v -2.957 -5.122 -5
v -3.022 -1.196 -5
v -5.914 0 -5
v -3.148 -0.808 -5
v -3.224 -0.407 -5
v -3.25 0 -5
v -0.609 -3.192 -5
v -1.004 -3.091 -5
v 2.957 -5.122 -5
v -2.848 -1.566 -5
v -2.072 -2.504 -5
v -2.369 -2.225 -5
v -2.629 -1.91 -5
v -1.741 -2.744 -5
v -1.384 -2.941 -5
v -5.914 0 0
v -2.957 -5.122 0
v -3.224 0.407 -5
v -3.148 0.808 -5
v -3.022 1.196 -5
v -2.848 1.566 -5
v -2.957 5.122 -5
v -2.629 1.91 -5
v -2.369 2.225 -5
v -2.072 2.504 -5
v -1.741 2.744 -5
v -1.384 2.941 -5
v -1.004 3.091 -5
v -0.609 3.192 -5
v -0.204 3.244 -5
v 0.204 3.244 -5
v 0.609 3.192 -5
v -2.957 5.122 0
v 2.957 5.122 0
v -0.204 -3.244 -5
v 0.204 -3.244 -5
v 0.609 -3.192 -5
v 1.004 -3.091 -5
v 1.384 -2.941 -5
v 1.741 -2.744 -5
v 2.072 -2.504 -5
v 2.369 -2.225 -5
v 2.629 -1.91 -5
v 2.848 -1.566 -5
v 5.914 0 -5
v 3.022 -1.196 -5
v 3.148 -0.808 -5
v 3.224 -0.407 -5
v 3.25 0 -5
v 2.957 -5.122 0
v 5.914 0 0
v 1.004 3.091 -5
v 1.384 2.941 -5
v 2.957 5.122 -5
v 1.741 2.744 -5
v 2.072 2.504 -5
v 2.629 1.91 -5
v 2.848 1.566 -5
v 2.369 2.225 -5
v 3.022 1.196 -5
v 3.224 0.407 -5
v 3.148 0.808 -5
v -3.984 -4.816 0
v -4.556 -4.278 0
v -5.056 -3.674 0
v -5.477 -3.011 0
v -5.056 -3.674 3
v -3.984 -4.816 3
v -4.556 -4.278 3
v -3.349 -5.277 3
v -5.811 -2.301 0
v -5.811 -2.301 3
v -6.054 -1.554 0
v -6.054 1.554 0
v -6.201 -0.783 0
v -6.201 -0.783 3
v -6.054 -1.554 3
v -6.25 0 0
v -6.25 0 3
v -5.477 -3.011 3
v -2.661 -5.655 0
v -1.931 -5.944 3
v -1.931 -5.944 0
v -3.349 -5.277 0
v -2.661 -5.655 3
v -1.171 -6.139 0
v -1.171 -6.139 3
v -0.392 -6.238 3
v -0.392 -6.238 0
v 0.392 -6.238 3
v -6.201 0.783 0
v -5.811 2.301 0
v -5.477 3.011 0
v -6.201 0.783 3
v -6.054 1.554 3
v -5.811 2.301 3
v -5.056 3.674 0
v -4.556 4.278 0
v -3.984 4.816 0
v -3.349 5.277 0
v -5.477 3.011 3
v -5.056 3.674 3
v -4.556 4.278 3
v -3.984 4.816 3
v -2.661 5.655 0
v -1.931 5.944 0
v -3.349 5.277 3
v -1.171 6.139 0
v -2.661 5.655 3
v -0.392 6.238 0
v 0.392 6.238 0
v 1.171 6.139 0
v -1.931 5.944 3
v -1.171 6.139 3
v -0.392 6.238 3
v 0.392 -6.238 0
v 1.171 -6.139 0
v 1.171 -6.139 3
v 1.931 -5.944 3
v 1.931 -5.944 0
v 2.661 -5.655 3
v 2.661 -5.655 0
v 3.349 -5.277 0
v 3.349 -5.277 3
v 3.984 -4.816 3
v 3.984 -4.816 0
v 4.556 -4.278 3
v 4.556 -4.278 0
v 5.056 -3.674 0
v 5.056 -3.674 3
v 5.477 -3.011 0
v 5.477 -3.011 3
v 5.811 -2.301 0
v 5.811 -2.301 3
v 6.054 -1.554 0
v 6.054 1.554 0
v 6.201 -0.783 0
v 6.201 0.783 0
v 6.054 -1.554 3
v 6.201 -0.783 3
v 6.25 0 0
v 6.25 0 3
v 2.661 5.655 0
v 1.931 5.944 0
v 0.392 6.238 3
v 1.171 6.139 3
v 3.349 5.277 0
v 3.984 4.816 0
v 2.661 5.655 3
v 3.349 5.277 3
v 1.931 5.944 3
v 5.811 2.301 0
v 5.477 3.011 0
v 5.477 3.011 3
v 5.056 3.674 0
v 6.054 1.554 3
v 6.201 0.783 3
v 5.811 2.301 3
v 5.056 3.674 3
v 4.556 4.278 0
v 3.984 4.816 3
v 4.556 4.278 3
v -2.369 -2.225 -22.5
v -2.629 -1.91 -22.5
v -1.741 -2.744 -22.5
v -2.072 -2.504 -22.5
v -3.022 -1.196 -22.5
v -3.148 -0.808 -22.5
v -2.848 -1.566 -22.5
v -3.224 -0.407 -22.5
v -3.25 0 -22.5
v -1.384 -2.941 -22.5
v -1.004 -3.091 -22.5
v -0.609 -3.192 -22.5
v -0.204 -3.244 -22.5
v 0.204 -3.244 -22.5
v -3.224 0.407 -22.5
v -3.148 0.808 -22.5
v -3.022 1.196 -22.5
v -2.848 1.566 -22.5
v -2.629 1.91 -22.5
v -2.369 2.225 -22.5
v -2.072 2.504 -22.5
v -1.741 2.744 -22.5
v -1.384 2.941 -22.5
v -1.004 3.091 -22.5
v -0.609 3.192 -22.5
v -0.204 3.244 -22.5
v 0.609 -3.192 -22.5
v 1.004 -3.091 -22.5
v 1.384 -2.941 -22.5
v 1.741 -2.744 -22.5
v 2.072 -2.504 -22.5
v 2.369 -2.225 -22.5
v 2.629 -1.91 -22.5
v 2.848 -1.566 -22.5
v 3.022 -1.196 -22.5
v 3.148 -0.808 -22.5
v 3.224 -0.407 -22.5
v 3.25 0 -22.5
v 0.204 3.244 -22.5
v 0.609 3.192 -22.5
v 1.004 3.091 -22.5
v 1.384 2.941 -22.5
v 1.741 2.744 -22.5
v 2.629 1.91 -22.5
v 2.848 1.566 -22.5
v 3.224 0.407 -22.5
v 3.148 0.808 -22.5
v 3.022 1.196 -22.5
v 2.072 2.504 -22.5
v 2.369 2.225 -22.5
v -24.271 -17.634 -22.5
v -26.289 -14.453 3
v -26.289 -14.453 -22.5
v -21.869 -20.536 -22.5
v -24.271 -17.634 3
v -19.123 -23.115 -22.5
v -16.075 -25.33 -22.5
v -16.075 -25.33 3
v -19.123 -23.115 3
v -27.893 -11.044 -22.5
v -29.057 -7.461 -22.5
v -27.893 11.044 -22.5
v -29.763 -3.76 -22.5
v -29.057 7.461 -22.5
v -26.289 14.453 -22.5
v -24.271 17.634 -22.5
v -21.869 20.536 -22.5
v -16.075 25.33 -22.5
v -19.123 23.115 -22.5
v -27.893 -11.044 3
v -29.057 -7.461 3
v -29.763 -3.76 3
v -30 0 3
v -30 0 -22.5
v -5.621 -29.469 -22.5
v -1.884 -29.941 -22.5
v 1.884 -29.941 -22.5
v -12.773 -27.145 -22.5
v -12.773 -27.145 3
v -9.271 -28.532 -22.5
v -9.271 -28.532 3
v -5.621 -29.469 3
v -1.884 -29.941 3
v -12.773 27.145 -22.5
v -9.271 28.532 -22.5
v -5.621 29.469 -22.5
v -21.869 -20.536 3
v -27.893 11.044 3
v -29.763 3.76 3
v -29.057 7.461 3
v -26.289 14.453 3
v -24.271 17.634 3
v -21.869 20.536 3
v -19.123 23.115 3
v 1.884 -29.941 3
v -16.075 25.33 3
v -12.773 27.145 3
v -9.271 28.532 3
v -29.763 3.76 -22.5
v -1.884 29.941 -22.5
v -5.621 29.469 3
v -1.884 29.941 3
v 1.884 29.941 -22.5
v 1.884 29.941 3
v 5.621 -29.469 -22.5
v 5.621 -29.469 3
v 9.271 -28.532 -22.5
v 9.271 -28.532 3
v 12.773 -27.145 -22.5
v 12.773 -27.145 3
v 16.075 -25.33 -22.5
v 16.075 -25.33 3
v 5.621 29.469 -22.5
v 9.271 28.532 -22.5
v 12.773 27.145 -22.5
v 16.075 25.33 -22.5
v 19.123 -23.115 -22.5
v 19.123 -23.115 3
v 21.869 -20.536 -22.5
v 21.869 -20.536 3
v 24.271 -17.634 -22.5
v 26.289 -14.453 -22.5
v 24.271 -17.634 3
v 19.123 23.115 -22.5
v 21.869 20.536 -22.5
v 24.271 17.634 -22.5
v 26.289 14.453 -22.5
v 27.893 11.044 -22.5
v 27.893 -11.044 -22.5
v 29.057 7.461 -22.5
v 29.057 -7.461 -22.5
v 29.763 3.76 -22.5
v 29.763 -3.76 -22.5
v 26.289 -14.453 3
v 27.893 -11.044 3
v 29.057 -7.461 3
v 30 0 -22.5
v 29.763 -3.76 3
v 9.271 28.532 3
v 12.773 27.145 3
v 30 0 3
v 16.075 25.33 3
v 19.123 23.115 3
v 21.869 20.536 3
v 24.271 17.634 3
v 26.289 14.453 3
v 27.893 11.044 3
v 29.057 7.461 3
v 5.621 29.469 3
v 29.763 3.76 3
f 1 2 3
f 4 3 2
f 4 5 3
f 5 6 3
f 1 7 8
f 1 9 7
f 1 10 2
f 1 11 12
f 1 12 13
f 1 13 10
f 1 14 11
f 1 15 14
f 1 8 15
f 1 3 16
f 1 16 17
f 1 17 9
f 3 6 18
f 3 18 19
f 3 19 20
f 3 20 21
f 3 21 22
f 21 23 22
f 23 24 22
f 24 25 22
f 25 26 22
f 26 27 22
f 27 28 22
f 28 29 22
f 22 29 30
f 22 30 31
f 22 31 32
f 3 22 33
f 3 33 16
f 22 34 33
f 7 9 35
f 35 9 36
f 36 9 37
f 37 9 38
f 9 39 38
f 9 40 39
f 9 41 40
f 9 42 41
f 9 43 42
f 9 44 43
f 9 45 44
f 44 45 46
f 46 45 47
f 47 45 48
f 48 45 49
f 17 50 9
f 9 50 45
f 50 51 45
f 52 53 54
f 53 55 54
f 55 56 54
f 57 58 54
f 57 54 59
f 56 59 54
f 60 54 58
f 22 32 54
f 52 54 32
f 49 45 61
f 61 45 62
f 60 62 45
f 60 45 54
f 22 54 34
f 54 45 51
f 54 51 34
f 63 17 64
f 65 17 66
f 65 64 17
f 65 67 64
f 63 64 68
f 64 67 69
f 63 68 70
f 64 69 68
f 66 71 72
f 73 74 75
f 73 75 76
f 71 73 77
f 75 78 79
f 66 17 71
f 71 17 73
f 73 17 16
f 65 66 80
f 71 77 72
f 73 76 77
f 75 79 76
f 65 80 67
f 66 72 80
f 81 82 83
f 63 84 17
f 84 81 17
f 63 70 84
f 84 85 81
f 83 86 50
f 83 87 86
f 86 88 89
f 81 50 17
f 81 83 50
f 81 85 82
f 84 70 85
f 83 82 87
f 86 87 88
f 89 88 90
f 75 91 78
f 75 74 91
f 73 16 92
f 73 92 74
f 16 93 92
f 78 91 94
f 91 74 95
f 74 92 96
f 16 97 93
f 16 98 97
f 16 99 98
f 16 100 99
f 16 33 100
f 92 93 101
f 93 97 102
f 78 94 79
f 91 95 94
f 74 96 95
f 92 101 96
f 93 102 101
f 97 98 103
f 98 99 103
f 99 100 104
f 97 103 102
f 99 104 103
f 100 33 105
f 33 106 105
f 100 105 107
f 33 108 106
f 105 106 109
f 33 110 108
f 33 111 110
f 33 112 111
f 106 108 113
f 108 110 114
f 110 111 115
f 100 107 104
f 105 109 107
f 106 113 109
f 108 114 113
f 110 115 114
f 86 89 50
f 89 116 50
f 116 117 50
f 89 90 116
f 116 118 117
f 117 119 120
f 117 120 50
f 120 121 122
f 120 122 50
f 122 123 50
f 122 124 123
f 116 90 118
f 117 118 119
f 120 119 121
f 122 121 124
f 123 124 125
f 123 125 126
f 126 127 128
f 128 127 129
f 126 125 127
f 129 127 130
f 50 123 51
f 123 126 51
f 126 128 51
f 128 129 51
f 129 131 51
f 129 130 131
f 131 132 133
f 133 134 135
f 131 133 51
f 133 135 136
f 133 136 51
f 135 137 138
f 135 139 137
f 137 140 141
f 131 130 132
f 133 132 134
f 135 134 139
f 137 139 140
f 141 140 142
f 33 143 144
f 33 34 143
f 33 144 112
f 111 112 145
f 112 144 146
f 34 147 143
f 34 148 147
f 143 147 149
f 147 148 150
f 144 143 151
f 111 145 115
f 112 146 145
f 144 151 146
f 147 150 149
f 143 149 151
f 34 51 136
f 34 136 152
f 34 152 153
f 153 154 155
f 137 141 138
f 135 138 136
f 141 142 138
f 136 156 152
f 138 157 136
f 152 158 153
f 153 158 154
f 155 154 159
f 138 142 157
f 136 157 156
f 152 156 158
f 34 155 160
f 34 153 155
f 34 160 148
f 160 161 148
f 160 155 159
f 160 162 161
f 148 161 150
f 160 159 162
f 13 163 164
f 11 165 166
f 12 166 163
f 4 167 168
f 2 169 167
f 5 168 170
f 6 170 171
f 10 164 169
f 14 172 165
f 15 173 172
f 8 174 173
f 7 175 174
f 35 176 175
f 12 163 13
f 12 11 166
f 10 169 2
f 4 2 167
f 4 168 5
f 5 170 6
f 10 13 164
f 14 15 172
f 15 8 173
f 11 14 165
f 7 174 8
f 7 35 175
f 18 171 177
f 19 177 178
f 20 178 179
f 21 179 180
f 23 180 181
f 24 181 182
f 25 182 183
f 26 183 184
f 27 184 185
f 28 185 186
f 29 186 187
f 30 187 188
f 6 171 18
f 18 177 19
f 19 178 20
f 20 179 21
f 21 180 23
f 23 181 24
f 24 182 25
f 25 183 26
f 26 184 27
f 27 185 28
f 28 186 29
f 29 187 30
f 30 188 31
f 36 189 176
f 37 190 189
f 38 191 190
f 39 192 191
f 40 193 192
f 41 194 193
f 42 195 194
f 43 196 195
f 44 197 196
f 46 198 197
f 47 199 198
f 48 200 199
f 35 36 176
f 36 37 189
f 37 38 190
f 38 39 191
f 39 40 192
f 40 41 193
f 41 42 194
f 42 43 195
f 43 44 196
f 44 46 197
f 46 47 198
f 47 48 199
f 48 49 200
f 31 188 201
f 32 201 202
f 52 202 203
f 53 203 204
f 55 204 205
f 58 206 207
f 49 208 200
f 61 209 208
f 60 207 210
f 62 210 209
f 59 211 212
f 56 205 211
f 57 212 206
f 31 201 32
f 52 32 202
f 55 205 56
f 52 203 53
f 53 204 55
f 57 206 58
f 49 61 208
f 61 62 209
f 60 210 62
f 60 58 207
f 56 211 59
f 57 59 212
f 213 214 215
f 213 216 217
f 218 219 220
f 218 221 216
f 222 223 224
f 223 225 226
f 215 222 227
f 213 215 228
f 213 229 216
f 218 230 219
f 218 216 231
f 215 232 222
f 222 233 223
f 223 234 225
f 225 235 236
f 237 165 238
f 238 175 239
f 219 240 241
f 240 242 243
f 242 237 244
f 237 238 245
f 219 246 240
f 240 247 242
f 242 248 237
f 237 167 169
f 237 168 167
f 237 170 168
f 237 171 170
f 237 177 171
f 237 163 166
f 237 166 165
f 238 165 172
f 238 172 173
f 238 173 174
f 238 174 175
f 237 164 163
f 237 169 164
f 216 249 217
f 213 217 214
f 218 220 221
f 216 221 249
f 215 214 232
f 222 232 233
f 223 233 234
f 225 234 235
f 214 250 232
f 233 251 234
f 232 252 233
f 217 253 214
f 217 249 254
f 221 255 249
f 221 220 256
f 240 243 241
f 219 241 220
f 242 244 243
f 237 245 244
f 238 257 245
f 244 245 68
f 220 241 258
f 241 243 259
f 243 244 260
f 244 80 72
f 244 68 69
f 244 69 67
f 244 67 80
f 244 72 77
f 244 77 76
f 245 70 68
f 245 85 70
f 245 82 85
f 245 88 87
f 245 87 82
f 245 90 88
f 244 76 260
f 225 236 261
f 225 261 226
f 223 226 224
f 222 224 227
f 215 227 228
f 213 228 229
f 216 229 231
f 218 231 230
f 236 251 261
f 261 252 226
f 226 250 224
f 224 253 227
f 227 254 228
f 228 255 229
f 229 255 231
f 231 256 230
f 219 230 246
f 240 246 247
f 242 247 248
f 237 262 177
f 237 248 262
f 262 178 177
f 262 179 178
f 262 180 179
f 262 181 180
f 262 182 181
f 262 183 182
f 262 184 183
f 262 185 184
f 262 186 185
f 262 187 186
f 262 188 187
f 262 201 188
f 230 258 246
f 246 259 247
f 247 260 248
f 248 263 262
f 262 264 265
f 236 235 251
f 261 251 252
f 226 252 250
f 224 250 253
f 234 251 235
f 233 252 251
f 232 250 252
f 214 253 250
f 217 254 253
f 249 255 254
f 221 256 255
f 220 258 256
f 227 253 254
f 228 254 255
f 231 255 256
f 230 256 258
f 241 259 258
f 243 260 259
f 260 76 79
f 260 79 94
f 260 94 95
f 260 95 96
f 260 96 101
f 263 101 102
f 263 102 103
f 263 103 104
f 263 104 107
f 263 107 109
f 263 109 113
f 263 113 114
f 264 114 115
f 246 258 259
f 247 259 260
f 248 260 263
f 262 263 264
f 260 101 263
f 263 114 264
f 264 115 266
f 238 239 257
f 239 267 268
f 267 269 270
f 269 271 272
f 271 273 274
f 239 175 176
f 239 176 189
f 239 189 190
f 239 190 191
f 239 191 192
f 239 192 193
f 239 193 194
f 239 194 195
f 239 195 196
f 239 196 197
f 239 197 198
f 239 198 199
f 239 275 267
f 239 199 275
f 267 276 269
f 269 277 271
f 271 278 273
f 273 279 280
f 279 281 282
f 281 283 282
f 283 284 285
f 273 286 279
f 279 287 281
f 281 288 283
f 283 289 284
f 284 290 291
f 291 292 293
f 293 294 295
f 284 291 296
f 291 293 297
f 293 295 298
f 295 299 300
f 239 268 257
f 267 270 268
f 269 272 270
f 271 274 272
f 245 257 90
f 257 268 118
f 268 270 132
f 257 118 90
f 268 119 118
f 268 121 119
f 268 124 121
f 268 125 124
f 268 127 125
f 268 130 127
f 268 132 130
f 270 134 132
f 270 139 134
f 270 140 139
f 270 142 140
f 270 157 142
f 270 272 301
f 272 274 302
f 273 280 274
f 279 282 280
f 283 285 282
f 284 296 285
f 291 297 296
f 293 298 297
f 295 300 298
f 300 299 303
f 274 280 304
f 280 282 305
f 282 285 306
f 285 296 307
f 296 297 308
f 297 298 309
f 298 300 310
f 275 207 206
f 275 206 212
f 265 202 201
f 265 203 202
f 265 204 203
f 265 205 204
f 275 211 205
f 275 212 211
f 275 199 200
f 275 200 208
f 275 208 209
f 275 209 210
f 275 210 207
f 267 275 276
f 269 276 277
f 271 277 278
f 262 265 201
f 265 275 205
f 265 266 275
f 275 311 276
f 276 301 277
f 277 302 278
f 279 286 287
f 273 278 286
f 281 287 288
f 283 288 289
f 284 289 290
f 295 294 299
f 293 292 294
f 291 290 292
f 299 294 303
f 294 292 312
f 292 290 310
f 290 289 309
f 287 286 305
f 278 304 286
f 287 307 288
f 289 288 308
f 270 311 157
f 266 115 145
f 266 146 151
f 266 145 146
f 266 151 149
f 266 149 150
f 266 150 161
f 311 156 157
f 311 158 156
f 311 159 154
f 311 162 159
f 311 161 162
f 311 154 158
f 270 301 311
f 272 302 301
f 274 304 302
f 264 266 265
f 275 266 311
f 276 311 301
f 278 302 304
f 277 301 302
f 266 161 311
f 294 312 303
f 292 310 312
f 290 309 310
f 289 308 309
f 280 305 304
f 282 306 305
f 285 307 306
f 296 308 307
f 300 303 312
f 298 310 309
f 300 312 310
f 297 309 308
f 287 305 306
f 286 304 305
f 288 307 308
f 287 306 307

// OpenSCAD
$fn = 50;

difference() {
	union() {
		translate(v = [0, 0, -22.5]) {
			cylinder(h = 25.5, r = 30.0);
		}
	}
	union() {
		translate(v = [0, 0, 0]) {
			rotate(a = [0, 0, 0]) {
				difference() {
					union() {
						translate(v = [0, 0, -5]) {
							linear_extrude(height = 5) {
								polygon(points = [[5.914249999999999, 0.0], [2.957125, 5.1218907443321156], [-2.9571249999999982, 5.1218907443321156], [-5.914249999999999, 7.242867331857232e-16], [-2.9571250000000022, -5.121890744332115], [2.9571249999999956, -5.121890744332118]]);
							}
						}
					}
					union();
				}
			}
		}
		#cylinder(h = 3, r = 6.25);
		#translate(v = [0, 0, -100.0]) {
			cylinder(h = 200, r = 3.25);
		}
	}
}
